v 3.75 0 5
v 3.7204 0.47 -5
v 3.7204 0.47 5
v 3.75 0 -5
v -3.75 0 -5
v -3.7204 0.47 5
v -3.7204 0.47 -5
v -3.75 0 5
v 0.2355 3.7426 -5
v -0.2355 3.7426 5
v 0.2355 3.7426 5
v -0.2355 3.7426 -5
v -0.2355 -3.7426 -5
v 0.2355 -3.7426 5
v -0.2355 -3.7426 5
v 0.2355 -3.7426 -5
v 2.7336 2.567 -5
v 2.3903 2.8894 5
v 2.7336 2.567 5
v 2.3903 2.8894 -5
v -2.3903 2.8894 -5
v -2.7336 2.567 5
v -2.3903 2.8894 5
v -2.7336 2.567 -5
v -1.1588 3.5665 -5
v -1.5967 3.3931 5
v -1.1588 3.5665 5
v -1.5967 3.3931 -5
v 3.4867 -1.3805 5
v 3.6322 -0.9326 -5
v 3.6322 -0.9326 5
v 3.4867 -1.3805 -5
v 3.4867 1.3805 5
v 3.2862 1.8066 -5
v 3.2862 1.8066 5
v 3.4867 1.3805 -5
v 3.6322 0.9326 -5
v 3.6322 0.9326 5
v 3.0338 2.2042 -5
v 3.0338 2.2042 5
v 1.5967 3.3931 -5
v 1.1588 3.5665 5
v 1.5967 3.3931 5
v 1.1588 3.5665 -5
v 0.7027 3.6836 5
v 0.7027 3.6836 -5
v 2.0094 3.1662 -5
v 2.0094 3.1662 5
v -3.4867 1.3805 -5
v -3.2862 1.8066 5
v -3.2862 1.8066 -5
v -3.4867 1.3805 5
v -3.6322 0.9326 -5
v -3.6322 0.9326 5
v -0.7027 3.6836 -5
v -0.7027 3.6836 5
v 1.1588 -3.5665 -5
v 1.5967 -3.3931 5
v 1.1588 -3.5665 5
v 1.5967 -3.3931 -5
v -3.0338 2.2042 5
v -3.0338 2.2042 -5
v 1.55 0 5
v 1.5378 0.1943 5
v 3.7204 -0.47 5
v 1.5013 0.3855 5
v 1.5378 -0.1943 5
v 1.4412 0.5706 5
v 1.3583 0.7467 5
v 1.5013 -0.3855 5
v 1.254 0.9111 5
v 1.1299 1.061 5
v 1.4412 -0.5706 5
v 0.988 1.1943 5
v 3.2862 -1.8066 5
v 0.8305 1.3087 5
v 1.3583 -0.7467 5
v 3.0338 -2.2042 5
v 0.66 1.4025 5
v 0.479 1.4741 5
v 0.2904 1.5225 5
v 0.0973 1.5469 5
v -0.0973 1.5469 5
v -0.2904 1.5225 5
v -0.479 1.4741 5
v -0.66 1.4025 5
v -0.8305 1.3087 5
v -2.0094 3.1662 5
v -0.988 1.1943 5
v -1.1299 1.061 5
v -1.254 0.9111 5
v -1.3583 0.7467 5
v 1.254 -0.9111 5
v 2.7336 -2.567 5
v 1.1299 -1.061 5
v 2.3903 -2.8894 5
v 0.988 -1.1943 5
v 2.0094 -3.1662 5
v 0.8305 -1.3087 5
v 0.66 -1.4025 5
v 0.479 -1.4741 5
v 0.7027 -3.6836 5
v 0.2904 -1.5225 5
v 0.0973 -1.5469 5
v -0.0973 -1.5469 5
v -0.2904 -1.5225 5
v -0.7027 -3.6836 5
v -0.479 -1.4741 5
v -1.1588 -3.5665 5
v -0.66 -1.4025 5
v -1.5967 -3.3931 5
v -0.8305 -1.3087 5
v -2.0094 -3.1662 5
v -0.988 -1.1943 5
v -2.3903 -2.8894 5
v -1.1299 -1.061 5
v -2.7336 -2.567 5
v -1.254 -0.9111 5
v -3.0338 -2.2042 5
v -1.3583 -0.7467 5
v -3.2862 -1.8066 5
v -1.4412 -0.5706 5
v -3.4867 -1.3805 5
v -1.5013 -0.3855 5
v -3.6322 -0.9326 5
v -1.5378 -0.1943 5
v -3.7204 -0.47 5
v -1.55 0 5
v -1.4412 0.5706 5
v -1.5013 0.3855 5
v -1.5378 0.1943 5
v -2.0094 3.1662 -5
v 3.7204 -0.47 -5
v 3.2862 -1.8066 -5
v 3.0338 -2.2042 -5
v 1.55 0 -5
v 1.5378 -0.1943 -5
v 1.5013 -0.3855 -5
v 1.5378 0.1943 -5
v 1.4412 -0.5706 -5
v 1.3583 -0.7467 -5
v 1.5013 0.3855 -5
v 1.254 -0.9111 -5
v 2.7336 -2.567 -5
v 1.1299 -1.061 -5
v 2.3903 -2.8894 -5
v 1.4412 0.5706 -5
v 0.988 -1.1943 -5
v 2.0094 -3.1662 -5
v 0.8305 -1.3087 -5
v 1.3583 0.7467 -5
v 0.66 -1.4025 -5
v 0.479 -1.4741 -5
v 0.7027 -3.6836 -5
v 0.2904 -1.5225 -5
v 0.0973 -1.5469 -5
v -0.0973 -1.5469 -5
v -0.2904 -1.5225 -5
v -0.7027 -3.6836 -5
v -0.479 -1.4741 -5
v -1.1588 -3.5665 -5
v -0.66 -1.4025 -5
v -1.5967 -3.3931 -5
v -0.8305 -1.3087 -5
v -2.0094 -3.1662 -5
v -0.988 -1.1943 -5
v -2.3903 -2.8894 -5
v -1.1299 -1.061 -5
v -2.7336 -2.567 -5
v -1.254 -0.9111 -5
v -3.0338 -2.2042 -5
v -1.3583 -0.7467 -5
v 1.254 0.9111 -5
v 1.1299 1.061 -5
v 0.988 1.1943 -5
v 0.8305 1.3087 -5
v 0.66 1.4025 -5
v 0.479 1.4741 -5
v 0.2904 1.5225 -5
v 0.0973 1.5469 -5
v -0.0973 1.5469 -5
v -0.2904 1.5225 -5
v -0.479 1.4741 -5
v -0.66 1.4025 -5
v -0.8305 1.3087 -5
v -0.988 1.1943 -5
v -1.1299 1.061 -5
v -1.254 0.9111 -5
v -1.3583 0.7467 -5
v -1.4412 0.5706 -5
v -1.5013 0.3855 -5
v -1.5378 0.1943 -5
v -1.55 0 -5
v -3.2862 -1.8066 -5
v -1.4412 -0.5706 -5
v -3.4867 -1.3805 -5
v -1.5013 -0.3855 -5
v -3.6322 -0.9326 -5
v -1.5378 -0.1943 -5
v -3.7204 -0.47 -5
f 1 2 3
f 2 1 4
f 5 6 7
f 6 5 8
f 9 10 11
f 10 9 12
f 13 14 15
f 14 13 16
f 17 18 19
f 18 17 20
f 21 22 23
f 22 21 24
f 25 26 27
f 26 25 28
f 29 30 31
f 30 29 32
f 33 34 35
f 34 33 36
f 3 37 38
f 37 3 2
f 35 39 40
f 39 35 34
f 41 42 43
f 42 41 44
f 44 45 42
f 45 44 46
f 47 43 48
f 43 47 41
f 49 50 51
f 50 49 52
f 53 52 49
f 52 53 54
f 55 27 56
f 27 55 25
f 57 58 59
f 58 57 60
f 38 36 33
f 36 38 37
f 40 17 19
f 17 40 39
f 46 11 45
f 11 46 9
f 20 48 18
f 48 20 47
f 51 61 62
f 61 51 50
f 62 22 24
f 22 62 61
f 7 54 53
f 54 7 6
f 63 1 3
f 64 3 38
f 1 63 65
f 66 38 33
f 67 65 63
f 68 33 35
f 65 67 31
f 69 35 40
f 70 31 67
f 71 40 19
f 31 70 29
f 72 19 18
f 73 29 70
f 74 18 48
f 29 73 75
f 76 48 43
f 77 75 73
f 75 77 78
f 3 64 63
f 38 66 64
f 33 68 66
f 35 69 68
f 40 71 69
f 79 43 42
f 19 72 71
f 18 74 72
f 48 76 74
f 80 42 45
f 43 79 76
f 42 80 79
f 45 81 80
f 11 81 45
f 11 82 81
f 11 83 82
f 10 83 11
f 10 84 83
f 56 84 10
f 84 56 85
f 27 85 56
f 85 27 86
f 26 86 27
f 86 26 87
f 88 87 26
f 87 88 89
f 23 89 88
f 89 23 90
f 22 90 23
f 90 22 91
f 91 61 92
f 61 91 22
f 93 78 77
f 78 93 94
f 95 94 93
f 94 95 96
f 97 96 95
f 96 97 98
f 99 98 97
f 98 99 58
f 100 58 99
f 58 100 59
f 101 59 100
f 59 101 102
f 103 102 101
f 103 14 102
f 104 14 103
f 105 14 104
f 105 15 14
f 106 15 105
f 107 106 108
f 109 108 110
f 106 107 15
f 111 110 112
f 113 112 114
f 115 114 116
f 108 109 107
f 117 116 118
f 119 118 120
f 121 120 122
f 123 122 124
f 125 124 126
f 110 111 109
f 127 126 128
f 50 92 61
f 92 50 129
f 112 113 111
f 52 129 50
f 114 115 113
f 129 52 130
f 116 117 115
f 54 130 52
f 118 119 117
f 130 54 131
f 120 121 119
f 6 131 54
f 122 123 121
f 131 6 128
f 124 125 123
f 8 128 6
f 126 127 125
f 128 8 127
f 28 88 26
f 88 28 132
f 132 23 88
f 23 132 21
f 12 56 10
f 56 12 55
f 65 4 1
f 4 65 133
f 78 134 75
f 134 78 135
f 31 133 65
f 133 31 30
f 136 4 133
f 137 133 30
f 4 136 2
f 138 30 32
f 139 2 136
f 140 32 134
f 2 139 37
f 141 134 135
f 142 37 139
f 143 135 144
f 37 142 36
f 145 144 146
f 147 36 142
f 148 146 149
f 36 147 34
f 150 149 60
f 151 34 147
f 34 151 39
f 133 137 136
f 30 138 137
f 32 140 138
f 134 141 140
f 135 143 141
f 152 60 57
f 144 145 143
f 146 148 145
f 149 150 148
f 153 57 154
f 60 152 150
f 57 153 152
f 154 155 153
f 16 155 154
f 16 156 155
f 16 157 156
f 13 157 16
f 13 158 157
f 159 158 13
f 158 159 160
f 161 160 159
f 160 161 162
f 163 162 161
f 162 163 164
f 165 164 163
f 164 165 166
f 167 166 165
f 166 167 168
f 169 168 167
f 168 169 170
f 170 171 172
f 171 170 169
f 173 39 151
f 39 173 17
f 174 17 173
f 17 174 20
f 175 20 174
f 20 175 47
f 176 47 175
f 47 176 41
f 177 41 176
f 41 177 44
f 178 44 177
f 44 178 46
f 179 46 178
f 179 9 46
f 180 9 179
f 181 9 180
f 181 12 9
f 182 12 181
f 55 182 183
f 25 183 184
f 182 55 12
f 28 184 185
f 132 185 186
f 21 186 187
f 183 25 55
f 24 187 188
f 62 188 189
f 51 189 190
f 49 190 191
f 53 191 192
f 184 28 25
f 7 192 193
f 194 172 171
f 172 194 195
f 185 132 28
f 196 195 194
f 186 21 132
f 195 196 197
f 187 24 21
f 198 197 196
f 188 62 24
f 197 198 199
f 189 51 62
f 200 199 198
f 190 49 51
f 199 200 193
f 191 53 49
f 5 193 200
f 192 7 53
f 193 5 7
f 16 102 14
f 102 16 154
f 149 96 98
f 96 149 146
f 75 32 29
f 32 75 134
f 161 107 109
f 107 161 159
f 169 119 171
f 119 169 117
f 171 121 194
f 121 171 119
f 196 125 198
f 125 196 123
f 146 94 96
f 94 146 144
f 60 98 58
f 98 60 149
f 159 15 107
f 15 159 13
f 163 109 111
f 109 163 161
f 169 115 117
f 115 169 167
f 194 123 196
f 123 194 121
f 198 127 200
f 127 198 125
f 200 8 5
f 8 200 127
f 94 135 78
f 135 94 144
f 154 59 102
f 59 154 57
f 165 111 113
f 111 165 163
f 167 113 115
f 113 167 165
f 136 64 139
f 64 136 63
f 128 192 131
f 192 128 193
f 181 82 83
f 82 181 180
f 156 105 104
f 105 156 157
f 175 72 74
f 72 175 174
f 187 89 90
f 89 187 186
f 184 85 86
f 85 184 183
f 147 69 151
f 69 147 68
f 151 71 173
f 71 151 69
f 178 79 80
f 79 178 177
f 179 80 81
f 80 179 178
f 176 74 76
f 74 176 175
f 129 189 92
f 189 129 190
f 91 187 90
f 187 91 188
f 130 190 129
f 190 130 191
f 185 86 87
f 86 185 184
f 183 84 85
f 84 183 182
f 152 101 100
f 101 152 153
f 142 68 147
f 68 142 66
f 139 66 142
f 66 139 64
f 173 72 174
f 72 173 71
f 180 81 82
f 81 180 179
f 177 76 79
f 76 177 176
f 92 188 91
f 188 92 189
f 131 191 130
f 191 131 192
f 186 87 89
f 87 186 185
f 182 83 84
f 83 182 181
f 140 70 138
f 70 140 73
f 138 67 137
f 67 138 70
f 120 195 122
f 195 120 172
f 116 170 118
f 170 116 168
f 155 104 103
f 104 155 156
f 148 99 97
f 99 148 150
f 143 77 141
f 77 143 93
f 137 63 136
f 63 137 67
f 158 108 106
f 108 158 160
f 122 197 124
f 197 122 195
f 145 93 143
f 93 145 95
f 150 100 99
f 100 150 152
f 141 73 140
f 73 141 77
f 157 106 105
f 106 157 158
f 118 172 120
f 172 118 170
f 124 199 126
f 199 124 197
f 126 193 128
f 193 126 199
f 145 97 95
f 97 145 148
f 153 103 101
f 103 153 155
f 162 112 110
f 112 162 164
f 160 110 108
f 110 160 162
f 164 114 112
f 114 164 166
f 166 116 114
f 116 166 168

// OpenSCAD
$fn = 50;


difference() {
	union() {
		translate(v = [0, 0, -5.0000000000]) {
			cylinder(h = 10, r = 3.7500000000);
		}
	}
	union() {
		translate(v = [0, 0, -100.0000000000]) {
			cylinder(h = 200, r = 1.5500000000);
		}
	}
}
